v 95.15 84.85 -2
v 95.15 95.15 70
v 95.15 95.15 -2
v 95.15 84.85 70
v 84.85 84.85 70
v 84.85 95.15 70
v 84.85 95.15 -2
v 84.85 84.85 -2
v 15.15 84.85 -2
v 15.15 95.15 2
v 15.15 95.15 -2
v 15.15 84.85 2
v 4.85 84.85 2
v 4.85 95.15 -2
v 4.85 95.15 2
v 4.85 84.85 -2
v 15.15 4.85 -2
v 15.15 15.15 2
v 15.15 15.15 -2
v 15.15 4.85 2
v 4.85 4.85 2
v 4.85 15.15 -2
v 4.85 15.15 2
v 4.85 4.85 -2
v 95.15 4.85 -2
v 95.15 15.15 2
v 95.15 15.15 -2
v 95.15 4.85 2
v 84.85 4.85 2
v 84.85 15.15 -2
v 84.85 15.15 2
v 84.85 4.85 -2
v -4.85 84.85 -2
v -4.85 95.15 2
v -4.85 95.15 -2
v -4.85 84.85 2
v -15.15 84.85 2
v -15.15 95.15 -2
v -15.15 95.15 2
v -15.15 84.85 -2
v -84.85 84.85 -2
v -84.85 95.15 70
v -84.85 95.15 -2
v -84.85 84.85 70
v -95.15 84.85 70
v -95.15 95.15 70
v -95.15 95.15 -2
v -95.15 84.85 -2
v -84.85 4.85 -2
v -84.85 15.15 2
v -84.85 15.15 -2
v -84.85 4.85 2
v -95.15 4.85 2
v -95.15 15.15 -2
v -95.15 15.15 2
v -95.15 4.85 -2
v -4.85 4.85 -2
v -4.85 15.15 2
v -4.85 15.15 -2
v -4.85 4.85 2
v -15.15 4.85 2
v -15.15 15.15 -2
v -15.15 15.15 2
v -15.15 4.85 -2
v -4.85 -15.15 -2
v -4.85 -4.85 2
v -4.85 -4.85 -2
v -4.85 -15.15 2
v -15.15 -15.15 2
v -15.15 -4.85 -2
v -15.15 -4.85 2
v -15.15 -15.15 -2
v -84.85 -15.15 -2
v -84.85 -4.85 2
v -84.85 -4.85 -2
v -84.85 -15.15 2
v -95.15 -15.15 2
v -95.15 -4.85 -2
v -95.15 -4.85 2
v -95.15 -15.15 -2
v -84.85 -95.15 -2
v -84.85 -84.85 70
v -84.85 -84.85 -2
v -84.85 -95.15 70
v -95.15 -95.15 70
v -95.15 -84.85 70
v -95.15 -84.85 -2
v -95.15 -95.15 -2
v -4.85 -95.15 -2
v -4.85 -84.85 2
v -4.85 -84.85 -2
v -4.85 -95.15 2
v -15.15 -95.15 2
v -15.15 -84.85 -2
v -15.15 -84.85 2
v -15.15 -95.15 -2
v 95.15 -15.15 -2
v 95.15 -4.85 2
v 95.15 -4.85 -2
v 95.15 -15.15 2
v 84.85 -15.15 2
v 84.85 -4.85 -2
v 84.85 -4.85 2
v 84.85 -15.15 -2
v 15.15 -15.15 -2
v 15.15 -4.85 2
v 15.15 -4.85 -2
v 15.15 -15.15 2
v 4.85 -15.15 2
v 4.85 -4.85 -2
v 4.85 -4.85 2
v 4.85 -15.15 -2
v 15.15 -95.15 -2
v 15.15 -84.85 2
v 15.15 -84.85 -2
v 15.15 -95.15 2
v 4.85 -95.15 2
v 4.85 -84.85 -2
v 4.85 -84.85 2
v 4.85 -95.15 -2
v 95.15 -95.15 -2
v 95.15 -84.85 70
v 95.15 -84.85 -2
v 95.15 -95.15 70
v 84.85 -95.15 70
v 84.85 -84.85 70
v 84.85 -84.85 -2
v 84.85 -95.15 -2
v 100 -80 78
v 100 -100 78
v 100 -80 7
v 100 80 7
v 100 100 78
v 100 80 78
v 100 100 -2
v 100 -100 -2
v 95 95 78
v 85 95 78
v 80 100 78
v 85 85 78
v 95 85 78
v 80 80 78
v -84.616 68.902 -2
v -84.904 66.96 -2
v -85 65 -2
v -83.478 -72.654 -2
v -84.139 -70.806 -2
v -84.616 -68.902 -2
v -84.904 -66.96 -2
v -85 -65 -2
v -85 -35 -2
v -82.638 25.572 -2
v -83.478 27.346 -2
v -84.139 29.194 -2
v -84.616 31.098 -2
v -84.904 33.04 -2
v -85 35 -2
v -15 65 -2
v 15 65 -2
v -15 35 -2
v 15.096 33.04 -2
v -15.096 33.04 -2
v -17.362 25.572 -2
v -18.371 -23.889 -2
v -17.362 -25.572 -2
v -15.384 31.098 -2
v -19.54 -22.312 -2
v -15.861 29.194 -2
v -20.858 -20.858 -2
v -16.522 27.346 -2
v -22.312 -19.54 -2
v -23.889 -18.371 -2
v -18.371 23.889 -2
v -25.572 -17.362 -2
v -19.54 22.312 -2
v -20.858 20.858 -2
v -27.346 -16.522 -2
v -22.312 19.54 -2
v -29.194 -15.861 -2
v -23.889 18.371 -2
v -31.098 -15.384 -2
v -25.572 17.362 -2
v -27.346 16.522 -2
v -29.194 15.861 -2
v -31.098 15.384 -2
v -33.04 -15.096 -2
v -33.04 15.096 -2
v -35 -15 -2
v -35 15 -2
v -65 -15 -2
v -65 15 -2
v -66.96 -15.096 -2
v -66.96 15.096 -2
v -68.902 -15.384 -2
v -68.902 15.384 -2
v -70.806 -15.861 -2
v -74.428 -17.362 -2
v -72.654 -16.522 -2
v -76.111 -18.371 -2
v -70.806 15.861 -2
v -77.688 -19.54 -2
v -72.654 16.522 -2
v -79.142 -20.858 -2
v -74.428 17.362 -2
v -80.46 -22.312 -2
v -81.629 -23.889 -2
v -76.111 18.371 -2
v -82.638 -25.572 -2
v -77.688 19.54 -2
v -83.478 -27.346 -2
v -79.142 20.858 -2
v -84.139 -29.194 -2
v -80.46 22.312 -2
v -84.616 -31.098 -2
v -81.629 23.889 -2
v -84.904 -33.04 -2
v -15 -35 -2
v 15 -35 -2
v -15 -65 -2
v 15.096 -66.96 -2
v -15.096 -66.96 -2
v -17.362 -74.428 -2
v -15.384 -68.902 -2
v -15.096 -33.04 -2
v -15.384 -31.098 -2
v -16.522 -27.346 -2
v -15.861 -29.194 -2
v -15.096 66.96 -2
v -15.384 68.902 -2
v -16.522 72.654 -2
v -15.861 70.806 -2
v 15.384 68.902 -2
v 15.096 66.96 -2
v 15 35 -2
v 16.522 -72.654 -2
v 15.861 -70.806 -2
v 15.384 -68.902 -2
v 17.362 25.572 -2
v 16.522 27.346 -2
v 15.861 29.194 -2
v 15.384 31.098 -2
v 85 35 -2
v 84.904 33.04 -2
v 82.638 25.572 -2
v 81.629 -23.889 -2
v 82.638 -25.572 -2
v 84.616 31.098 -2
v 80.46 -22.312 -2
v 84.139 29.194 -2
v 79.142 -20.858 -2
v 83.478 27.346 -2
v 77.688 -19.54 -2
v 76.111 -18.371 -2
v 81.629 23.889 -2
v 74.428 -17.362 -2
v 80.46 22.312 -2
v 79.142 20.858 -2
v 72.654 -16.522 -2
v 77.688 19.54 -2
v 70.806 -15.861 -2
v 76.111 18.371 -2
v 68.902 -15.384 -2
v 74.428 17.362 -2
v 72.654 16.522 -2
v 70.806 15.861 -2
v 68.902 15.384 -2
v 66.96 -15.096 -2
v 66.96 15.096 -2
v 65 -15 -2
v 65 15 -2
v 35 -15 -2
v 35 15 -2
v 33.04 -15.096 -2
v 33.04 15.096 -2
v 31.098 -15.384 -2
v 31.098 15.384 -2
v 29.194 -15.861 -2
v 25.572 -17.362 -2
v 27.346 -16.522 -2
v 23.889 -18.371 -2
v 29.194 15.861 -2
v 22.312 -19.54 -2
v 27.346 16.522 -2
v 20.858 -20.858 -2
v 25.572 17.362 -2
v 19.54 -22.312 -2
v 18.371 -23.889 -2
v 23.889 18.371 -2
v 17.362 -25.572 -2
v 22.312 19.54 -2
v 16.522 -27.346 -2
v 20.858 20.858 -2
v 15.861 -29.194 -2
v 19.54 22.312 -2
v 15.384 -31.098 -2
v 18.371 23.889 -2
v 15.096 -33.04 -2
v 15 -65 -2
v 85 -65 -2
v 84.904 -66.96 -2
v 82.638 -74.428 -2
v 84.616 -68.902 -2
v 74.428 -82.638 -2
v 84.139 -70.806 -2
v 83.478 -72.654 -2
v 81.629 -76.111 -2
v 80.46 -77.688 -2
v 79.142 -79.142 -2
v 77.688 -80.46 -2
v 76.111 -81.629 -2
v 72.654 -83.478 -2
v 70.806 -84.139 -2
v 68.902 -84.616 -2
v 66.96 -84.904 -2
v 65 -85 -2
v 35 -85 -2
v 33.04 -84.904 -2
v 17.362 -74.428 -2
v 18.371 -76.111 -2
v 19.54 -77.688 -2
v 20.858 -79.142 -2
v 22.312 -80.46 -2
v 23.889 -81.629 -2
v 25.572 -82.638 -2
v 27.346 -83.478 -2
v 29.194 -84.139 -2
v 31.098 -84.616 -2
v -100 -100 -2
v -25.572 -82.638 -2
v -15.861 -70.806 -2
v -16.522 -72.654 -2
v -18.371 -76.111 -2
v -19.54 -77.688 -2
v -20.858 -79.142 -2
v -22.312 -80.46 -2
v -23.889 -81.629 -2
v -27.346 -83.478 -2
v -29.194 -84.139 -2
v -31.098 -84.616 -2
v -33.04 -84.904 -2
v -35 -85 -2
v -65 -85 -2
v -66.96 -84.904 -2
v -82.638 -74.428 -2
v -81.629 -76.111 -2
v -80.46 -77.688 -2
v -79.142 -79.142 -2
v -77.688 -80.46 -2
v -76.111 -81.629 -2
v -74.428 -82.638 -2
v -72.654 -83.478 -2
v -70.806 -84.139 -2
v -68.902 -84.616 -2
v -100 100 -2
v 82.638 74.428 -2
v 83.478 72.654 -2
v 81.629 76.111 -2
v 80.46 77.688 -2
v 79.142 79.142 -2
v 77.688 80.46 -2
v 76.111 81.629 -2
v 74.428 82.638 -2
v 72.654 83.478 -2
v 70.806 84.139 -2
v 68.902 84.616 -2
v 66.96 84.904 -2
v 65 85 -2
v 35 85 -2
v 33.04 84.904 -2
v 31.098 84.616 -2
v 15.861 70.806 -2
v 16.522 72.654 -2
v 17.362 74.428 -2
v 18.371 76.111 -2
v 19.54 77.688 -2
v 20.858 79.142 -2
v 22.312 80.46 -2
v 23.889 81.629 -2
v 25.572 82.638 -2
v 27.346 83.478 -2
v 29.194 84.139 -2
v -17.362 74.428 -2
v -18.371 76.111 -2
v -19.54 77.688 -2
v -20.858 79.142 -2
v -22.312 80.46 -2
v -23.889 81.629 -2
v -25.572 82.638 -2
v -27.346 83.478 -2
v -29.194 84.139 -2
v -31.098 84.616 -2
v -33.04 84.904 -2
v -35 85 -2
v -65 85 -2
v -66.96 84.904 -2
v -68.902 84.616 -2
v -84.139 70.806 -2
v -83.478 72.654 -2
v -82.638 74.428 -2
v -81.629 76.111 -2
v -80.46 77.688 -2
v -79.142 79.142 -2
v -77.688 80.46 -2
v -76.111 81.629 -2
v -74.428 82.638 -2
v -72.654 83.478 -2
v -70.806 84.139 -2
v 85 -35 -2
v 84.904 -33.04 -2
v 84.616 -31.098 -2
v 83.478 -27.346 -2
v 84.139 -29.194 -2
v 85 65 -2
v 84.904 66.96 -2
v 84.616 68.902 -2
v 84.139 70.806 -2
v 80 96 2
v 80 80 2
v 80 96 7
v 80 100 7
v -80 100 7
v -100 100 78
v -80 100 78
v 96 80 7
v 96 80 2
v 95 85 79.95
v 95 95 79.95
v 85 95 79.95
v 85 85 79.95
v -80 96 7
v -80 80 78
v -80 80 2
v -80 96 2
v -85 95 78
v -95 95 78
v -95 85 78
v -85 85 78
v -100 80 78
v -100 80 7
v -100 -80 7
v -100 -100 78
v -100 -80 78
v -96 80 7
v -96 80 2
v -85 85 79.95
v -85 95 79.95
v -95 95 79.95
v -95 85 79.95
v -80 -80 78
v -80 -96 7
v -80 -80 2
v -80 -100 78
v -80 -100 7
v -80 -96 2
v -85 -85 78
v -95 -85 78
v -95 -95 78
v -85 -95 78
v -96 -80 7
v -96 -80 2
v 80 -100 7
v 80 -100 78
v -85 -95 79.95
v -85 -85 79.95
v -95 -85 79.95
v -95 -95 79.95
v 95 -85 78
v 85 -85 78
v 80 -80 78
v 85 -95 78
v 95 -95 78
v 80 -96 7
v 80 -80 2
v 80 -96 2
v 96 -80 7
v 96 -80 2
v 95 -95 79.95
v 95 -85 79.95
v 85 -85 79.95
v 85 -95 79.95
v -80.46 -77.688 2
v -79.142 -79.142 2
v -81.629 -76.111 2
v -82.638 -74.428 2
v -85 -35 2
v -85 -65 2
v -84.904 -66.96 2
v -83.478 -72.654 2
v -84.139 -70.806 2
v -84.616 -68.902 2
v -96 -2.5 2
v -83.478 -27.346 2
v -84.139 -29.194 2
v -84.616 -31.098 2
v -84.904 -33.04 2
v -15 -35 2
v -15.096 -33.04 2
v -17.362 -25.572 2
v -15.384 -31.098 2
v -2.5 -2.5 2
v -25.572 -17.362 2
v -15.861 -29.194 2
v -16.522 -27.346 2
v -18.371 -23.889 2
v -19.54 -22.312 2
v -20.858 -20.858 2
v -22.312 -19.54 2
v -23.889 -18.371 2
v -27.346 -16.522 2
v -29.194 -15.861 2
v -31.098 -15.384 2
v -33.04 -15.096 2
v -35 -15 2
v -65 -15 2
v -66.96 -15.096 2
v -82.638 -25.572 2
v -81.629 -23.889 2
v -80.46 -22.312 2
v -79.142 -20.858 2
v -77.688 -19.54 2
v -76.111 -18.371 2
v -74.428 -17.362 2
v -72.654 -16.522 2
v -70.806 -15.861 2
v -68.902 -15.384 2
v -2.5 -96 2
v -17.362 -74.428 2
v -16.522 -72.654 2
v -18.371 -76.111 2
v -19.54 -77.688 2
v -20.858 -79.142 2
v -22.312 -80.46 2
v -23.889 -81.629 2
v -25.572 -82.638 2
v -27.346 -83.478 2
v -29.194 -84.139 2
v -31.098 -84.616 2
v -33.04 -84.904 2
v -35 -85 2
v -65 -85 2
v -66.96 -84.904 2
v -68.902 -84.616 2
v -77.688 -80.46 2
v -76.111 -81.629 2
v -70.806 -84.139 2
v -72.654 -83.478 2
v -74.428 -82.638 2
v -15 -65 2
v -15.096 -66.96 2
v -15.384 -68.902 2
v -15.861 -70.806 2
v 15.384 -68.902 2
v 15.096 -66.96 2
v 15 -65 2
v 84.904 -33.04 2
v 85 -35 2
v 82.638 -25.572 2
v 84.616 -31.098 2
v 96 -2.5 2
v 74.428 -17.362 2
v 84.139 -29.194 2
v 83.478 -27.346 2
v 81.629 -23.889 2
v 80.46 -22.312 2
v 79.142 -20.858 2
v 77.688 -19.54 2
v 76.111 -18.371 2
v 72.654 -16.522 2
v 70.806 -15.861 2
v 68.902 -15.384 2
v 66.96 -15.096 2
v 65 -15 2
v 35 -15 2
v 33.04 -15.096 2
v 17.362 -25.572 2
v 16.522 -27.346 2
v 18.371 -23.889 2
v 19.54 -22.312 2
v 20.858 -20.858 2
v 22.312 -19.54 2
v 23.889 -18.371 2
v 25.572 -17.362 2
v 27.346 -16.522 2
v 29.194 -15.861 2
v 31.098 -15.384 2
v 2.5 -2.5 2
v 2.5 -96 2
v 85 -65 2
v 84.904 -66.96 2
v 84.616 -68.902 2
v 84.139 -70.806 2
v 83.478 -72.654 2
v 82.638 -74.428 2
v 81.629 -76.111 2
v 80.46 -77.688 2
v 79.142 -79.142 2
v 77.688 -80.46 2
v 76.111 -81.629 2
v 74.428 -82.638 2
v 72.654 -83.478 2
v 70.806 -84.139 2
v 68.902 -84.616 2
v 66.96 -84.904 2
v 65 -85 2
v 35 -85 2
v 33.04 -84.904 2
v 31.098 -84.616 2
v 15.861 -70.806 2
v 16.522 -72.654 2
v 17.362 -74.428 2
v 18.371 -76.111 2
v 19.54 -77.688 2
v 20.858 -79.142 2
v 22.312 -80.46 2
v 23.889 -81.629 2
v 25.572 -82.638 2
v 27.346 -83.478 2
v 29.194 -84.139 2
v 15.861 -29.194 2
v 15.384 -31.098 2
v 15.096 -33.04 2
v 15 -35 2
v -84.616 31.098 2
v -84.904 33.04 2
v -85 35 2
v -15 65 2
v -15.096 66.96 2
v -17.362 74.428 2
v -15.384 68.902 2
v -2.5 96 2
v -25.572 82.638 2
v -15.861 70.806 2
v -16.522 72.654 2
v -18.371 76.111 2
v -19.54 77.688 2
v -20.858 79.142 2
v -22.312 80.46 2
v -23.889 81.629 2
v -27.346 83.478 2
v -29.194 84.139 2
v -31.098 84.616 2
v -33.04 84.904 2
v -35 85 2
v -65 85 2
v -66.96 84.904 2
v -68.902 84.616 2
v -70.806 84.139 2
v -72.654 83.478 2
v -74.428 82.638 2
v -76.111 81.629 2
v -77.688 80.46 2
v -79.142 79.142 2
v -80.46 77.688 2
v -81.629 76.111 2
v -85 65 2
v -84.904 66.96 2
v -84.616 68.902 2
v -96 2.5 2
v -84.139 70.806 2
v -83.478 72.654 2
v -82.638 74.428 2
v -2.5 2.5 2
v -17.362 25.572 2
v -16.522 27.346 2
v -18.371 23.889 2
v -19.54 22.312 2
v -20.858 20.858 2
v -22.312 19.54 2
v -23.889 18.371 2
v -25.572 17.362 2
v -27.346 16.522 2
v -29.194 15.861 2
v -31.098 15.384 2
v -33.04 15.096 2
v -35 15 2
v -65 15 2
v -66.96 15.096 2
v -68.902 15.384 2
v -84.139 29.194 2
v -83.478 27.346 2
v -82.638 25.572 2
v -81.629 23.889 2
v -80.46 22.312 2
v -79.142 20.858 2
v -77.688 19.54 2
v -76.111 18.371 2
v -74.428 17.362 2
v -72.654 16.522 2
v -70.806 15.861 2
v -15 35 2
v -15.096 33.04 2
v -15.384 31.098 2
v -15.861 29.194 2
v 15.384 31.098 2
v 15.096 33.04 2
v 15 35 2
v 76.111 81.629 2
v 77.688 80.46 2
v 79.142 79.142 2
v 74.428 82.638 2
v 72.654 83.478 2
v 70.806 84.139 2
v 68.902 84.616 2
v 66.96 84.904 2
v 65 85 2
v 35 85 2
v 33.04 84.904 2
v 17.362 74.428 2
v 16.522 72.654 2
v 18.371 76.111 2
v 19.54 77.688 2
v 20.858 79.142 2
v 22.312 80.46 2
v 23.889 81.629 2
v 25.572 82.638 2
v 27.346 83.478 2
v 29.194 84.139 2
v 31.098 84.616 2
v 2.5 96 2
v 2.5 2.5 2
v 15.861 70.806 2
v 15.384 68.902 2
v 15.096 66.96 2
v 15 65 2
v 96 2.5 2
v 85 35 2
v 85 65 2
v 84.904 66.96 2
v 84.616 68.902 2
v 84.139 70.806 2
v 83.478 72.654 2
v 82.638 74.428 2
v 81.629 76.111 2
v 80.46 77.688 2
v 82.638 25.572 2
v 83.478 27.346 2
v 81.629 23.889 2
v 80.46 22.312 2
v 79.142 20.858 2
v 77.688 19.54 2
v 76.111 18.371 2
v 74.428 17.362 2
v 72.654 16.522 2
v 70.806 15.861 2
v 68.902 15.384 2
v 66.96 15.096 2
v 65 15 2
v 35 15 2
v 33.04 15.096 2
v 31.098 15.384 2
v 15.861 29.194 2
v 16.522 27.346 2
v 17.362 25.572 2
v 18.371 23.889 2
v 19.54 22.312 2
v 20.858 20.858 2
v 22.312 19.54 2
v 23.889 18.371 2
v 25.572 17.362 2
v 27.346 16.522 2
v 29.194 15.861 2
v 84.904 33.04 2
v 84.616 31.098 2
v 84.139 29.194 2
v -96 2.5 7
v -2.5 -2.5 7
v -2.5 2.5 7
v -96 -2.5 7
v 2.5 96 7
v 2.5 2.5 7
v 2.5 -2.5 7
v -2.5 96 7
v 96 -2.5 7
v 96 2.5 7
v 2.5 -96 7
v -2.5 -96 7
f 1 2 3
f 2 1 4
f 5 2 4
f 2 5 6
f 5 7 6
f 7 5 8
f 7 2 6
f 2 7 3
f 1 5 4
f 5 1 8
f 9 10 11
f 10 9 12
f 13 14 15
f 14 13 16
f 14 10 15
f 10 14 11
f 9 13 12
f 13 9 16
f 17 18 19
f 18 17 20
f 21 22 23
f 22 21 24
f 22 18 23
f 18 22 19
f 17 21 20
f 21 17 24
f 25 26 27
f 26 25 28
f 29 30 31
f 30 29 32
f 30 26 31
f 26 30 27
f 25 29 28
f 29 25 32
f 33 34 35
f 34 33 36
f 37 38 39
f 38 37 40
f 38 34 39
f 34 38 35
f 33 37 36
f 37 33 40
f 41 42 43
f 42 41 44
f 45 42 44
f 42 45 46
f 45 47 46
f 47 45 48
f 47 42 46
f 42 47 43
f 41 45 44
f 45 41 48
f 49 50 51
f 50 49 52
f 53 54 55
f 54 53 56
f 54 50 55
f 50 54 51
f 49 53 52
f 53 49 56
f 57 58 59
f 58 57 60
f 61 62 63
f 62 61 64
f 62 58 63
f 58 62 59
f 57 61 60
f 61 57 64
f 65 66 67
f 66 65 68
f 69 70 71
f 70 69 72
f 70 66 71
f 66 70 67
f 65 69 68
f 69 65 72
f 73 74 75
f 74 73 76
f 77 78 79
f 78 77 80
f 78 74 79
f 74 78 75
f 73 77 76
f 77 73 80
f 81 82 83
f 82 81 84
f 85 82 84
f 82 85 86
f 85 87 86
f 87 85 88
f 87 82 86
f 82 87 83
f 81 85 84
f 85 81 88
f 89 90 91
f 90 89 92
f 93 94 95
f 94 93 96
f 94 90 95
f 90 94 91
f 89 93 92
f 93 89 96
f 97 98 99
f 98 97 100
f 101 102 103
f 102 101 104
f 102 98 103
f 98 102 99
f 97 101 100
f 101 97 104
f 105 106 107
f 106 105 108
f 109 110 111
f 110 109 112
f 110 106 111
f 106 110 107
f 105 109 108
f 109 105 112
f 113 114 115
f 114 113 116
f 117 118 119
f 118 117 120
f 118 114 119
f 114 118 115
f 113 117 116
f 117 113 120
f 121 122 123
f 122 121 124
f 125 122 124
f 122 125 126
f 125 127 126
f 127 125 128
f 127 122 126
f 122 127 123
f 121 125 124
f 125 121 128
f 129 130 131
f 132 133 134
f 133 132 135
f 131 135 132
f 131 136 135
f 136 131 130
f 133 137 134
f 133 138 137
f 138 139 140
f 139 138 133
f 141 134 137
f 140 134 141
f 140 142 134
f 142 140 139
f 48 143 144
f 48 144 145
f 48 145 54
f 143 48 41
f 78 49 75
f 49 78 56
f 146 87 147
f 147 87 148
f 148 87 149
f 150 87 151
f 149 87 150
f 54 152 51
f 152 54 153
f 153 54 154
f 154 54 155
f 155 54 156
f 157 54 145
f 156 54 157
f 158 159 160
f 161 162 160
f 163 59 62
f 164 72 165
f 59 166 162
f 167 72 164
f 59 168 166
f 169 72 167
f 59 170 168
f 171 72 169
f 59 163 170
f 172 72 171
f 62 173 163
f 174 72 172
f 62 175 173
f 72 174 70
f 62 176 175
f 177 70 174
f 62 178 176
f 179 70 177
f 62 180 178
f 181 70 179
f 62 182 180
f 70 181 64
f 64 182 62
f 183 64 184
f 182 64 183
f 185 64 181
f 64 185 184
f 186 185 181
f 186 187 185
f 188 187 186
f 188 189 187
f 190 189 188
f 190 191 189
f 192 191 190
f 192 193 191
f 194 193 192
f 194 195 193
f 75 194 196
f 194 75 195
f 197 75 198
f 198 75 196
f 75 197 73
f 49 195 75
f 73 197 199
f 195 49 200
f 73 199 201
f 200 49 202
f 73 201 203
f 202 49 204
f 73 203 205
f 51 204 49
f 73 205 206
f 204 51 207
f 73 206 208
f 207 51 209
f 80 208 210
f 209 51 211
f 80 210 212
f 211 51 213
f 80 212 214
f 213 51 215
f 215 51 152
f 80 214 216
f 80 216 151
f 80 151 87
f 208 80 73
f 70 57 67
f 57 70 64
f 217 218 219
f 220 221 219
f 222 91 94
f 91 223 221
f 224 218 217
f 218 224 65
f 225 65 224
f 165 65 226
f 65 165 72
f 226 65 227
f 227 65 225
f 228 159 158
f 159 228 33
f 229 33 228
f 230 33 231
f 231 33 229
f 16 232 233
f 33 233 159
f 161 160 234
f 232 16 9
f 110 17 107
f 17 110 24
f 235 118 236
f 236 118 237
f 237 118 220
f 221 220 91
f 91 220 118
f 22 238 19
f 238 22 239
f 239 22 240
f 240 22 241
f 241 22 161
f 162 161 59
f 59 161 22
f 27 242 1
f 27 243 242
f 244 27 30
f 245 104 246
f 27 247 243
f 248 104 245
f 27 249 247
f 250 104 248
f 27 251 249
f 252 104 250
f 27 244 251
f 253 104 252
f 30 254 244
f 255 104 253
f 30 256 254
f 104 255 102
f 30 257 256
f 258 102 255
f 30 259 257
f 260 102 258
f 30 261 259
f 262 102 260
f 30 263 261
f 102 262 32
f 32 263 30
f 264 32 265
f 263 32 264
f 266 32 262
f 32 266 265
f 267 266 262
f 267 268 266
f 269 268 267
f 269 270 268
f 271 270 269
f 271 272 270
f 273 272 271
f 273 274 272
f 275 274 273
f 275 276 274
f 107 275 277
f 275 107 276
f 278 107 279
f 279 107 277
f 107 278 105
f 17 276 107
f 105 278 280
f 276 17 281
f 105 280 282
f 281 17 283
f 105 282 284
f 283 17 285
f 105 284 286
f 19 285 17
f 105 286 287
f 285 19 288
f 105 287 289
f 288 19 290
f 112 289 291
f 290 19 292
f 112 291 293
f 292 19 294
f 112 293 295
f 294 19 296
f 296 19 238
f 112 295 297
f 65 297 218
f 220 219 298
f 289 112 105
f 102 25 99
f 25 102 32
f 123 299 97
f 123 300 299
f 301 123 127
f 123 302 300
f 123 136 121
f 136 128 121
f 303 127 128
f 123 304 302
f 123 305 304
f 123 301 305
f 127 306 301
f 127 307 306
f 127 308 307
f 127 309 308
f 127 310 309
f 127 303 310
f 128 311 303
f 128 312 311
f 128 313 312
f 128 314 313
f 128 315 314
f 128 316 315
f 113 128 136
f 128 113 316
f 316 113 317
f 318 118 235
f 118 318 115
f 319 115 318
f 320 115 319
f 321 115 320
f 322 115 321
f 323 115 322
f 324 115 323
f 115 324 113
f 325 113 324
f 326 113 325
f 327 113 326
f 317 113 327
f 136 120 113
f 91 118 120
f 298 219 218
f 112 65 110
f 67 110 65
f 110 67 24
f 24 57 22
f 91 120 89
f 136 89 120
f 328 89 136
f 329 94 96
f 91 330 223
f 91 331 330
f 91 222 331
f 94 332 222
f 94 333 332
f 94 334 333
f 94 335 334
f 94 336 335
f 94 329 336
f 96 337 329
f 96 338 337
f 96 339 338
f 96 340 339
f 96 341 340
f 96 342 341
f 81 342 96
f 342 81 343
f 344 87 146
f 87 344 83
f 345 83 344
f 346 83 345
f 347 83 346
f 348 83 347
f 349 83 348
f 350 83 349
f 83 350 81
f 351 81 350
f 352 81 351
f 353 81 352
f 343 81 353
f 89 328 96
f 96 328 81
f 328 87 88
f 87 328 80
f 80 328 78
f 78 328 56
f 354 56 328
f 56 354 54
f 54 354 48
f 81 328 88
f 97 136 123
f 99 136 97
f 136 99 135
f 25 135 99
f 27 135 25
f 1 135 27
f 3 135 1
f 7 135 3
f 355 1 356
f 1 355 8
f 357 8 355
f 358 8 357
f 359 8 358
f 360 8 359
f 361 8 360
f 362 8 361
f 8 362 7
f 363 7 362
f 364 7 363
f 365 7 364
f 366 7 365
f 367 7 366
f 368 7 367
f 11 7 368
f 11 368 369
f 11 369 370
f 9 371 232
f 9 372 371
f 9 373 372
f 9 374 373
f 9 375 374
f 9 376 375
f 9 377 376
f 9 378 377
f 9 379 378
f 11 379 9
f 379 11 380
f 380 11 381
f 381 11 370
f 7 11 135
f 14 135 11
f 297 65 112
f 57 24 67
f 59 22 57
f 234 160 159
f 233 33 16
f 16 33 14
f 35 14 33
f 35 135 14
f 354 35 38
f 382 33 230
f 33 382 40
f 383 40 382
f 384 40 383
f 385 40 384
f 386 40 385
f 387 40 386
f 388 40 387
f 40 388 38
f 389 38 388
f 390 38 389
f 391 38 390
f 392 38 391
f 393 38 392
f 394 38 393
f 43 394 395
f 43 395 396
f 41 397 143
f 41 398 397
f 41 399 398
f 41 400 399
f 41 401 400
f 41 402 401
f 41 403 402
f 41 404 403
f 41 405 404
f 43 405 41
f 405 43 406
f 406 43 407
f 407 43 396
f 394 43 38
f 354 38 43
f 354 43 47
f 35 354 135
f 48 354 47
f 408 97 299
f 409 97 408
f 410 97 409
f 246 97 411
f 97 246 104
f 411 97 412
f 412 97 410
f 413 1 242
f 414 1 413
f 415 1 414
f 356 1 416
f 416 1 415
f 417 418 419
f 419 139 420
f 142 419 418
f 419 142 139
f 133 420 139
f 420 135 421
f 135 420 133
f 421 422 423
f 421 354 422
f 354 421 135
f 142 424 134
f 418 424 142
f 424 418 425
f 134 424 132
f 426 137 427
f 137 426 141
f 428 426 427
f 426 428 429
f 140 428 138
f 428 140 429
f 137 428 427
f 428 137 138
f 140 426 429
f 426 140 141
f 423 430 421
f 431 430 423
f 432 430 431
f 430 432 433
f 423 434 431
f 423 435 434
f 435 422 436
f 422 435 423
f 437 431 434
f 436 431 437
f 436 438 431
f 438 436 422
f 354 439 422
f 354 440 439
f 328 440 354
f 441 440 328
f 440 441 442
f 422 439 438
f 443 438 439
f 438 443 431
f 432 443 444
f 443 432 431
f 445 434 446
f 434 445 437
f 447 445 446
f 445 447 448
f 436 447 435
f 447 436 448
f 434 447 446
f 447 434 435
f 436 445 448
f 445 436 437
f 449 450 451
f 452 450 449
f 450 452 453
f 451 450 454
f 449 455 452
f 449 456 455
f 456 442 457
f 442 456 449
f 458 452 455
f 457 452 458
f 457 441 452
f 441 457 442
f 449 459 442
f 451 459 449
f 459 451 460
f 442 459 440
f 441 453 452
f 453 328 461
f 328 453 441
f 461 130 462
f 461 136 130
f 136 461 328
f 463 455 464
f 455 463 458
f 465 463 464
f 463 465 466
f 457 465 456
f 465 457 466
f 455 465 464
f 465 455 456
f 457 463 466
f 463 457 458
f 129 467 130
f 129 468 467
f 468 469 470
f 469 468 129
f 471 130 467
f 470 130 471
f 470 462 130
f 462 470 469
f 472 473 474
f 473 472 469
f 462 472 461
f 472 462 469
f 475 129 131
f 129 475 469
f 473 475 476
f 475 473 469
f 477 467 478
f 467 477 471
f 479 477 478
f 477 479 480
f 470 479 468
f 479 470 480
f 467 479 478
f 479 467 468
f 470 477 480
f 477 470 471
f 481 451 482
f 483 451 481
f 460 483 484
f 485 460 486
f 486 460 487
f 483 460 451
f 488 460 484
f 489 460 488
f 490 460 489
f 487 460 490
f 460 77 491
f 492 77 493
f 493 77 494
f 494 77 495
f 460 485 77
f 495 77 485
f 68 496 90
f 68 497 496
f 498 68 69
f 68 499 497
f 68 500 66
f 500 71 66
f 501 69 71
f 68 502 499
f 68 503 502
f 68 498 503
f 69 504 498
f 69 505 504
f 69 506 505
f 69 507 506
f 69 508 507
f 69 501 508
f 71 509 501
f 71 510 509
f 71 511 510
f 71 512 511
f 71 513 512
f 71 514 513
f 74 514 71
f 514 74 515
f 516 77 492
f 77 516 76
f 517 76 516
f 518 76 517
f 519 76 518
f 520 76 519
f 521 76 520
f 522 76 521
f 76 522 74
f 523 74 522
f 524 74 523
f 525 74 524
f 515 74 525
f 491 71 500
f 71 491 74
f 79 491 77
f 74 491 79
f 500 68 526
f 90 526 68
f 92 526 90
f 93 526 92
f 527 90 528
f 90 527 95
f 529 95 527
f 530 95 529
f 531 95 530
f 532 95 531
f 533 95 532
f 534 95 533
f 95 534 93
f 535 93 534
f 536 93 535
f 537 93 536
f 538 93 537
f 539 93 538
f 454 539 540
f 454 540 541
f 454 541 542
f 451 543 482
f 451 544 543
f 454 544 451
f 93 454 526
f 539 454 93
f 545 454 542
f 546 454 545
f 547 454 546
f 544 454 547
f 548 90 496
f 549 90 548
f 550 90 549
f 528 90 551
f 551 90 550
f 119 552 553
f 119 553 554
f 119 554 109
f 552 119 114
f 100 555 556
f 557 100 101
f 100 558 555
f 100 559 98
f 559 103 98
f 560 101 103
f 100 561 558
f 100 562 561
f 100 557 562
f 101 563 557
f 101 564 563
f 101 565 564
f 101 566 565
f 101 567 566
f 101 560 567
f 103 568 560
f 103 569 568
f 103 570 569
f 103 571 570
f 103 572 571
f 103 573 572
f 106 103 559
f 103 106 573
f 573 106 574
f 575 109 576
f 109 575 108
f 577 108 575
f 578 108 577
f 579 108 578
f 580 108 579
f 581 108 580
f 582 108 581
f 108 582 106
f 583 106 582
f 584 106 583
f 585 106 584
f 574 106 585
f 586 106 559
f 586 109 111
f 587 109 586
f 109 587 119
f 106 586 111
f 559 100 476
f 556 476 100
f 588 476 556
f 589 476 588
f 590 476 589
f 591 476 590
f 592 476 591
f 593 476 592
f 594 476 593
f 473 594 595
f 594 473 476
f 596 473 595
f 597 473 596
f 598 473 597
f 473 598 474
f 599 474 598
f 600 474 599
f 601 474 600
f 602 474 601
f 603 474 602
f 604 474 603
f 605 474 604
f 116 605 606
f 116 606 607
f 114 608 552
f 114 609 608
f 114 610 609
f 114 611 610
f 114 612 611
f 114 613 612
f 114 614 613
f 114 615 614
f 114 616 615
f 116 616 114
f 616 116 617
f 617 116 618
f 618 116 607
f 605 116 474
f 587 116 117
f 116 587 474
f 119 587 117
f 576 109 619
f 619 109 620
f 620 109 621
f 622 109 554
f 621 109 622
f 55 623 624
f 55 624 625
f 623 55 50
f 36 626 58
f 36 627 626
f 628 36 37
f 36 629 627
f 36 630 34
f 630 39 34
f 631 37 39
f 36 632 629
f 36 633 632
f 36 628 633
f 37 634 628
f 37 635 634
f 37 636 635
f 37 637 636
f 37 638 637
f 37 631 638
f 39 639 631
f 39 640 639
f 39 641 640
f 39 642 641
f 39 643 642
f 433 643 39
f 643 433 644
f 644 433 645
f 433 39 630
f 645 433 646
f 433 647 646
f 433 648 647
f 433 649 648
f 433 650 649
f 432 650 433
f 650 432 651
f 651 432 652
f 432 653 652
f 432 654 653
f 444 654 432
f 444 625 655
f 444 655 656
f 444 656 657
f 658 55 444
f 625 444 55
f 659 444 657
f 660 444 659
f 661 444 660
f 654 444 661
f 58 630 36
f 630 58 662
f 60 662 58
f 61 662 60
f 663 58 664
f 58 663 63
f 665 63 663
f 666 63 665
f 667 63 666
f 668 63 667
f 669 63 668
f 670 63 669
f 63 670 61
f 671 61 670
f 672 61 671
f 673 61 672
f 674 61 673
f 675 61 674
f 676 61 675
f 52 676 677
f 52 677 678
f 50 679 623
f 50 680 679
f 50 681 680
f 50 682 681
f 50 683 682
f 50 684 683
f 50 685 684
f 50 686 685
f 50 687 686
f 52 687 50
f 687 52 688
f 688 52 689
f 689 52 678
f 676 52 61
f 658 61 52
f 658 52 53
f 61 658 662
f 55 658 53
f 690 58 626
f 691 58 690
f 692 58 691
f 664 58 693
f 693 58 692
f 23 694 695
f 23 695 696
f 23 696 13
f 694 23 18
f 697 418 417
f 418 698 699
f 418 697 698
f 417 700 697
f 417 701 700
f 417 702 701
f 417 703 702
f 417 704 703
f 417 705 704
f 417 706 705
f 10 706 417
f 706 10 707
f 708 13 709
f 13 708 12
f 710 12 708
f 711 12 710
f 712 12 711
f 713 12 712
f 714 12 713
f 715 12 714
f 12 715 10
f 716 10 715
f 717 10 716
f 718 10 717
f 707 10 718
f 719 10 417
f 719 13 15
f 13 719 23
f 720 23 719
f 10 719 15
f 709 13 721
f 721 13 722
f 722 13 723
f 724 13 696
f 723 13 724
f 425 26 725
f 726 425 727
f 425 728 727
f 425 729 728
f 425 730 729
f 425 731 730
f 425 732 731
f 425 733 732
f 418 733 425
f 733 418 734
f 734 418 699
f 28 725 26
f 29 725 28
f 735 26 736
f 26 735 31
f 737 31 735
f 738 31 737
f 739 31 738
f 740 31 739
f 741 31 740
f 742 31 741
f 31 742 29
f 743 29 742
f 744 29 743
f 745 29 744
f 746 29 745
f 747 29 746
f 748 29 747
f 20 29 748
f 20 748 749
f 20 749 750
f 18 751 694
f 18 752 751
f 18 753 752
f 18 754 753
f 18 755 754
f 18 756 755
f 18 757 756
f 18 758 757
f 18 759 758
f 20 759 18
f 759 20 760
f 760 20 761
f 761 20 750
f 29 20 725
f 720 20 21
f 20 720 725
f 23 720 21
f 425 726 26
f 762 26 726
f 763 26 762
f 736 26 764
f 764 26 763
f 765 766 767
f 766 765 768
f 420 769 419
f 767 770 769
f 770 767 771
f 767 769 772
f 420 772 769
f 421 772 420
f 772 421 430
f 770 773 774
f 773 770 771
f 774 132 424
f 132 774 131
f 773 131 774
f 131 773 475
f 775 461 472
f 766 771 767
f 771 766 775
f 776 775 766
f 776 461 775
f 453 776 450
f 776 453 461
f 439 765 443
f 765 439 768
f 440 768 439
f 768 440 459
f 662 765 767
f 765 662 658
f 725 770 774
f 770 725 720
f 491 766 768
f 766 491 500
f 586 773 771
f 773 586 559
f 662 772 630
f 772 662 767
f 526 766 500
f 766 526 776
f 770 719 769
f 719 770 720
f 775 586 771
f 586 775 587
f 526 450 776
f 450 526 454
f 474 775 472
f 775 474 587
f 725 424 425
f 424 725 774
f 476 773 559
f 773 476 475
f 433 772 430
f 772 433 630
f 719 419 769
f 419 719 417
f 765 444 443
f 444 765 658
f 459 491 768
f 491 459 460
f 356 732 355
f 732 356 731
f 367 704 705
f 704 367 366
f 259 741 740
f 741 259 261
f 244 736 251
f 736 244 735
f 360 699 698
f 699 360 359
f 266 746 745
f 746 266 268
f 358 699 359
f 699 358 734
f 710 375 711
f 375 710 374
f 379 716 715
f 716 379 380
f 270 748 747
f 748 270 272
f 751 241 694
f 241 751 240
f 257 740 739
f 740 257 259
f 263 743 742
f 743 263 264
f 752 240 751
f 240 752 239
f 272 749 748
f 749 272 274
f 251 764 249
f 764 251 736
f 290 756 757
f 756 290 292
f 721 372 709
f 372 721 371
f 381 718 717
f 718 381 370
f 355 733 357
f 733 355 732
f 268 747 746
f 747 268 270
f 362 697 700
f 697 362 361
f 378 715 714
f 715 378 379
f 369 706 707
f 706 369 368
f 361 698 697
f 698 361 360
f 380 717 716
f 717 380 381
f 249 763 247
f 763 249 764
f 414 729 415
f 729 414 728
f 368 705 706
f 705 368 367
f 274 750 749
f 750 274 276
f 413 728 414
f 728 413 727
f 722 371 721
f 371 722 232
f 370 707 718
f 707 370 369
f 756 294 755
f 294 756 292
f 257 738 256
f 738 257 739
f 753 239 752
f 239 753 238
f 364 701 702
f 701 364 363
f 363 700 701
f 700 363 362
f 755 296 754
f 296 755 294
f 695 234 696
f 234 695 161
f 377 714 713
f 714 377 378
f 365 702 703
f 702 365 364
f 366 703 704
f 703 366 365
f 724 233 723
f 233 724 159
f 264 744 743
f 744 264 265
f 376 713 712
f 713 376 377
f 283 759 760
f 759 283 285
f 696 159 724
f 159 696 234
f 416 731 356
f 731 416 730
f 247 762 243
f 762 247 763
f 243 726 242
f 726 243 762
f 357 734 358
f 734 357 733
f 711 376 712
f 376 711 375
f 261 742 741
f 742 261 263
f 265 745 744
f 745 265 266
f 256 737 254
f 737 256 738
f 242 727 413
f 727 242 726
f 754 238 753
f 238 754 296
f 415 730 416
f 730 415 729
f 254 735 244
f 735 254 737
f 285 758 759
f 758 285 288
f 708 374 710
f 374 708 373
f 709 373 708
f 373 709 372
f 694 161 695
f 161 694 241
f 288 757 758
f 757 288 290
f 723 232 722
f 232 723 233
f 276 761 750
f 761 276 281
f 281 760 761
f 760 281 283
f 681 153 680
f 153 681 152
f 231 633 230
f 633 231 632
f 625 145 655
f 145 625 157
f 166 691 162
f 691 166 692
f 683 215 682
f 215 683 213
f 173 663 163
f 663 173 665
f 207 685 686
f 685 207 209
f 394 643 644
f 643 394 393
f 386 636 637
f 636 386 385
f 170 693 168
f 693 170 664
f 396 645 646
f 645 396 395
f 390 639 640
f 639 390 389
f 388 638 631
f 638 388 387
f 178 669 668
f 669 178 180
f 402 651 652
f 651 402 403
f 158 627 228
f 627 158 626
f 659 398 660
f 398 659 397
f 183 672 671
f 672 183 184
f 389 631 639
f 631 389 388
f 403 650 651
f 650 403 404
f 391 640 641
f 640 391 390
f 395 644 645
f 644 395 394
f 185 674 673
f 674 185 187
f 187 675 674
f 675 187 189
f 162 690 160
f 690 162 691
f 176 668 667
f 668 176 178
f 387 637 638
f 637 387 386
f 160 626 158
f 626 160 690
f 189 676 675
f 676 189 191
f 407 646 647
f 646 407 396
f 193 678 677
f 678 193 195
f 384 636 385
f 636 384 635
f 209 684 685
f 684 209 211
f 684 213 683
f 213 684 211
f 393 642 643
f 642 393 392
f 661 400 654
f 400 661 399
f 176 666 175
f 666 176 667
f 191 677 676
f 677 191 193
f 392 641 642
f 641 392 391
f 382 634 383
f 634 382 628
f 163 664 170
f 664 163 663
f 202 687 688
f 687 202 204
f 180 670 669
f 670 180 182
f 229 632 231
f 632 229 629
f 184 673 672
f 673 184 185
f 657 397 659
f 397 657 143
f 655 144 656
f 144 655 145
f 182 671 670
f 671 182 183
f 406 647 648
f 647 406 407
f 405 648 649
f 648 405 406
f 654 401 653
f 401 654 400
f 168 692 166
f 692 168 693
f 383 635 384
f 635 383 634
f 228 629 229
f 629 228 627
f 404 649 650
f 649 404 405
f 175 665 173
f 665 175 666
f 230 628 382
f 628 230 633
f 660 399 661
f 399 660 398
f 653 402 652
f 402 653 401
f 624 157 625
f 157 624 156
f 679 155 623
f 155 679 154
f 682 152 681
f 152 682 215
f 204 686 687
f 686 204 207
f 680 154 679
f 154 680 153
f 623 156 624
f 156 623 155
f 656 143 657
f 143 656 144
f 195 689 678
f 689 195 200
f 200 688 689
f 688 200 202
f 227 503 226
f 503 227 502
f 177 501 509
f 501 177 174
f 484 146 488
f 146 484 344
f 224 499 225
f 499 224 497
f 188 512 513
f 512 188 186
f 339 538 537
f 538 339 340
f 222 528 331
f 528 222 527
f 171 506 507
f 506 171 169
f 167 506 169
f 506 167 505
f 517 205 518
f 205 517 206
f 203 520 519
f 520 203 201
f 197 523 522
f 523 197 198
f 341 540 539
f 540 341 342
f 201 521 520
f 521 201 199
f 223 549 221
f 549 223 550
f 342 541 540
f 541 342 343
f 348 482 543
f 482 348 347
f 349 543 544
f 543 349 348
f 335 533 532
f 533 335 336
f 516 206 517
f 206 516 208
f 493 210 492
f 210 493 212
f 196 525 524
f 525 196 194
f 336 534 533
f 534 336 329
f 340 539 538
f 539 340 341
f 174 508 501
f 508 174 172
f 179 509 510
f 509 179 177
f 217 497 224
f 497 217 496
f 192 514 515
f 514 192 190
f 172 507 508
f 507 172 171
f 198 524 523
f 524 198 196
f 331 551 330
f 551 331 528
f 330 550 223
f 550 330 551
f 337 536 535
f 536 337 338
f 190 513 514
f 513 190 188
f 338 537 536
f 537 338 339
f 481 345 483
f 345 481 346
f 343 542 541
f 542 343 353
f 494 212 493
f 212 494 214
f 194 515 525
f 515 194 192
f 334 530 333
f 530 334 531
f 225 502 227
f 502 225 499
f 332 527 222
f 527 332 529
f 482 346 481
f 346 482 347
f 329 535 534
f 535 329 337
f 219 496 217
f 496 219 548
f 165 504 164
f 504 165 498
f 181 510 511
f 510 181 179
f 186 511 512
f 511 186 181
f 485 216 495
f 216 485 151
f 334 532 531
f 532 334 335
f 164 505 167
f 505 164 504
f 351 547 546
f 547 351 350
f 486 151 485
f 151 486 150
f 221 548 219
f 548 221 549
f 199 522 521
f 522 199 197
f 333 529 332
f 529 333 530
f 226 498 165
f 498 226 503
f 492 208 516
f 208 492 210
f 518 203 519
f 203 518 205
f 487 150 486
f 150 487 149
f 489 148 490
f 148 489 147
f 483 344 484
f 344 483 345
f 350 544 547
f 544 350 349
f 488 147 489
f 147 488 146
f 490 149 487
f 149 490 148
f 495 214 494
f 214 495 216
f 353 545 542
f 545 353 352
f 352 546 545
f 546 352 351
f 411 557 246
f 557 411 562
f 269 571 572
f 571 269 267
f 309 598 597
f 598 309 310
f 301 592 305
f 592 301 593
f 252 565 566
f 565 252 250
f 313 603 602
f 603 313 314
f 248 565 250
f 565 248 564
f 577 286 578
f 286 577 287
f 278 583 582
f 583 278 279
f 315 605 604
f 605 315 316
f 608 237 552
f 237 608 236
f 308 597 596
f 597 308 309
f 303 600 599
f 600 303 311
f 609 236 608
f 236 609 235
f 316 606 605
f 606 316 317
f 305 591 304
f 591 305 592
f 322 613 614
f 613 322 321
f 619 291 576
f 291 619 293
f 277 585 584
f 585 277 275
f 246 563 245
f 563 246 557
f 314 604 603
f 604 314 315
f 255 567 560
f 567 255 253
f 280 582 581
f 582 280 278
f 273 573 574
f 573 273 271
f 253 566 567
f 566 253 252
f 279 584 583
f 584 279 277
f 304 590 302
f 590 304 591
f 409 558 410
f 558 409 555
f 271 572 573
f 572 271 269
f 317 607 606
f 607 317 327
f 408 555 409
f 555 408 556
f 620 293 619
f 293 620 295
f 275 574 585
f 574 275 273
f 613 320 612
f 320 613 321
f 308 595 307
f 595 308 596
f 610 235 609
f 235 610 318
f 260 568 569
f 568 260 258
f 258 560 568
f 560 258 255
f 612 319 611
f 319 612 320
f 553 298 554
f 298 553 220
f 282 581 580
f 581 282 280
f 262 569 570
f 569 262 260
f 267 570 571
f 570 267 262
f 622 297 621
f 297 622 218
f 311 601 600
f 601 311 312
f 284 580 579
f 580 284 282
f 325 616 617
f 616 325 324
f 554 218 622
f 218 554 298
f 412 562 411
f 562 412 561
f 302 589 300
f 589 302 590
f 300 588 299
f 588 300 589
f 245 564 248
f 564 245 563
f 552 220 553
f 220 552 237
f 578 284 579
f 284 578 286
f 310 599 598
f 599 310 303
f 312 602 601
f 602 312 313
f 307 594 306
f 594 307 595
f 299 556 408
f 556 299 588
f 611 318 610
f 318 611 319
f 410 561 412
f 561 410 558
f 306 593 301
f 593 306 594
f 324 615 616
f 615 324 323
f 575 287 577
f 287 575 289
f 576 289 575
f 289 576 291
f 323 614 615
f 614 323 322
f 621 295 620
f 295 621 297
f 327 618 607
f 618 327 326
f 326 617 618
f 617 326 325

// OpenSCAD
$fn=64;

eps=0.1;


function mirror4XY(midpoint, offsetX, offsetY)  =
  [[midpoint[0]+offsetX, midpoint[1]+offsetY, midpoint[2]],
   [midpoint[0]-offsetX, midpoint[1]+offsetY, midpoint[2]],
   [midpoint[0]-offsetX, midpoint[1]-offsetY, midpoint[2]],
   [midpoint[0]+offsetX, midpoint[1]-offsetY, midpoint[2]]];

module leg() {
    mainLength = 80;
    upperDim = 20;
    innerDim = 10;
    
    translate(v=[0,0,mainLength/2]) {
      cube(size=[upperDim, upperDim, mainLength], center=true);
    
      translate(v=[0,0,mainLength/2 + innerDim/8-0.3])
        cube(size=[innerDim, innerDim, innerDim/4-0.5], center=true);

    }
}


module base() {

  difference() {
    union() {
      cube(size=[200,200,4], center=true);

      // legs
      for (i=mirror4XY(midpoint=[0,0,-2], offsetX=90, offsetY=90)) {
        translate(v=i)
          leg();
      }

      // base support
      translate(v=[0,0,4.5])
        cube(size=[200,5,5], center=true);

      rotate(a=[0,0,90])
        translate(v=[0,0,4.5])
        cube(size=[200,5,5], center=true);

      translate(v=[0,-98,4.5])
        cube(size=[200,4,5], center=true);

      rotate(a=[0,0,90])
        translate(v=[0,-98,4.5])
        cube(size=[200,4,5], center=true);

      rotate(a=[0,0,180])
        translate(v=[0,-98,4.5])
        cube(size=[200,4,5], center=true);

      rotate(a=[0,0,270])
        translate(v=[0,-98,4.5])
        cube(size=[200,4,5], center=true);

    }
        
    union() {

      
      // lug holes
      for (i=mirror4XY(midpoint=[0,0,0], offsetX=50, offsetY=50)) {
        for (j=mirror4XY(midpoint=i, offsetX=40, offsetY=40)) {
          translate(v=j)
            cube(size=[10+0.3,10+0.3,140], center=true);
        }
      }
      
      // decorative perforations
      for (i=mirror4XY(midpoint=[0,0,0], offsetX=50, offsetY=50)) {
        translate(v=i)
          minkowski() {
          cube(size=[30,30,50], center=true);
          cylinder(r=20, h=10);
        }
      }
          
    }
  }
}


base();
